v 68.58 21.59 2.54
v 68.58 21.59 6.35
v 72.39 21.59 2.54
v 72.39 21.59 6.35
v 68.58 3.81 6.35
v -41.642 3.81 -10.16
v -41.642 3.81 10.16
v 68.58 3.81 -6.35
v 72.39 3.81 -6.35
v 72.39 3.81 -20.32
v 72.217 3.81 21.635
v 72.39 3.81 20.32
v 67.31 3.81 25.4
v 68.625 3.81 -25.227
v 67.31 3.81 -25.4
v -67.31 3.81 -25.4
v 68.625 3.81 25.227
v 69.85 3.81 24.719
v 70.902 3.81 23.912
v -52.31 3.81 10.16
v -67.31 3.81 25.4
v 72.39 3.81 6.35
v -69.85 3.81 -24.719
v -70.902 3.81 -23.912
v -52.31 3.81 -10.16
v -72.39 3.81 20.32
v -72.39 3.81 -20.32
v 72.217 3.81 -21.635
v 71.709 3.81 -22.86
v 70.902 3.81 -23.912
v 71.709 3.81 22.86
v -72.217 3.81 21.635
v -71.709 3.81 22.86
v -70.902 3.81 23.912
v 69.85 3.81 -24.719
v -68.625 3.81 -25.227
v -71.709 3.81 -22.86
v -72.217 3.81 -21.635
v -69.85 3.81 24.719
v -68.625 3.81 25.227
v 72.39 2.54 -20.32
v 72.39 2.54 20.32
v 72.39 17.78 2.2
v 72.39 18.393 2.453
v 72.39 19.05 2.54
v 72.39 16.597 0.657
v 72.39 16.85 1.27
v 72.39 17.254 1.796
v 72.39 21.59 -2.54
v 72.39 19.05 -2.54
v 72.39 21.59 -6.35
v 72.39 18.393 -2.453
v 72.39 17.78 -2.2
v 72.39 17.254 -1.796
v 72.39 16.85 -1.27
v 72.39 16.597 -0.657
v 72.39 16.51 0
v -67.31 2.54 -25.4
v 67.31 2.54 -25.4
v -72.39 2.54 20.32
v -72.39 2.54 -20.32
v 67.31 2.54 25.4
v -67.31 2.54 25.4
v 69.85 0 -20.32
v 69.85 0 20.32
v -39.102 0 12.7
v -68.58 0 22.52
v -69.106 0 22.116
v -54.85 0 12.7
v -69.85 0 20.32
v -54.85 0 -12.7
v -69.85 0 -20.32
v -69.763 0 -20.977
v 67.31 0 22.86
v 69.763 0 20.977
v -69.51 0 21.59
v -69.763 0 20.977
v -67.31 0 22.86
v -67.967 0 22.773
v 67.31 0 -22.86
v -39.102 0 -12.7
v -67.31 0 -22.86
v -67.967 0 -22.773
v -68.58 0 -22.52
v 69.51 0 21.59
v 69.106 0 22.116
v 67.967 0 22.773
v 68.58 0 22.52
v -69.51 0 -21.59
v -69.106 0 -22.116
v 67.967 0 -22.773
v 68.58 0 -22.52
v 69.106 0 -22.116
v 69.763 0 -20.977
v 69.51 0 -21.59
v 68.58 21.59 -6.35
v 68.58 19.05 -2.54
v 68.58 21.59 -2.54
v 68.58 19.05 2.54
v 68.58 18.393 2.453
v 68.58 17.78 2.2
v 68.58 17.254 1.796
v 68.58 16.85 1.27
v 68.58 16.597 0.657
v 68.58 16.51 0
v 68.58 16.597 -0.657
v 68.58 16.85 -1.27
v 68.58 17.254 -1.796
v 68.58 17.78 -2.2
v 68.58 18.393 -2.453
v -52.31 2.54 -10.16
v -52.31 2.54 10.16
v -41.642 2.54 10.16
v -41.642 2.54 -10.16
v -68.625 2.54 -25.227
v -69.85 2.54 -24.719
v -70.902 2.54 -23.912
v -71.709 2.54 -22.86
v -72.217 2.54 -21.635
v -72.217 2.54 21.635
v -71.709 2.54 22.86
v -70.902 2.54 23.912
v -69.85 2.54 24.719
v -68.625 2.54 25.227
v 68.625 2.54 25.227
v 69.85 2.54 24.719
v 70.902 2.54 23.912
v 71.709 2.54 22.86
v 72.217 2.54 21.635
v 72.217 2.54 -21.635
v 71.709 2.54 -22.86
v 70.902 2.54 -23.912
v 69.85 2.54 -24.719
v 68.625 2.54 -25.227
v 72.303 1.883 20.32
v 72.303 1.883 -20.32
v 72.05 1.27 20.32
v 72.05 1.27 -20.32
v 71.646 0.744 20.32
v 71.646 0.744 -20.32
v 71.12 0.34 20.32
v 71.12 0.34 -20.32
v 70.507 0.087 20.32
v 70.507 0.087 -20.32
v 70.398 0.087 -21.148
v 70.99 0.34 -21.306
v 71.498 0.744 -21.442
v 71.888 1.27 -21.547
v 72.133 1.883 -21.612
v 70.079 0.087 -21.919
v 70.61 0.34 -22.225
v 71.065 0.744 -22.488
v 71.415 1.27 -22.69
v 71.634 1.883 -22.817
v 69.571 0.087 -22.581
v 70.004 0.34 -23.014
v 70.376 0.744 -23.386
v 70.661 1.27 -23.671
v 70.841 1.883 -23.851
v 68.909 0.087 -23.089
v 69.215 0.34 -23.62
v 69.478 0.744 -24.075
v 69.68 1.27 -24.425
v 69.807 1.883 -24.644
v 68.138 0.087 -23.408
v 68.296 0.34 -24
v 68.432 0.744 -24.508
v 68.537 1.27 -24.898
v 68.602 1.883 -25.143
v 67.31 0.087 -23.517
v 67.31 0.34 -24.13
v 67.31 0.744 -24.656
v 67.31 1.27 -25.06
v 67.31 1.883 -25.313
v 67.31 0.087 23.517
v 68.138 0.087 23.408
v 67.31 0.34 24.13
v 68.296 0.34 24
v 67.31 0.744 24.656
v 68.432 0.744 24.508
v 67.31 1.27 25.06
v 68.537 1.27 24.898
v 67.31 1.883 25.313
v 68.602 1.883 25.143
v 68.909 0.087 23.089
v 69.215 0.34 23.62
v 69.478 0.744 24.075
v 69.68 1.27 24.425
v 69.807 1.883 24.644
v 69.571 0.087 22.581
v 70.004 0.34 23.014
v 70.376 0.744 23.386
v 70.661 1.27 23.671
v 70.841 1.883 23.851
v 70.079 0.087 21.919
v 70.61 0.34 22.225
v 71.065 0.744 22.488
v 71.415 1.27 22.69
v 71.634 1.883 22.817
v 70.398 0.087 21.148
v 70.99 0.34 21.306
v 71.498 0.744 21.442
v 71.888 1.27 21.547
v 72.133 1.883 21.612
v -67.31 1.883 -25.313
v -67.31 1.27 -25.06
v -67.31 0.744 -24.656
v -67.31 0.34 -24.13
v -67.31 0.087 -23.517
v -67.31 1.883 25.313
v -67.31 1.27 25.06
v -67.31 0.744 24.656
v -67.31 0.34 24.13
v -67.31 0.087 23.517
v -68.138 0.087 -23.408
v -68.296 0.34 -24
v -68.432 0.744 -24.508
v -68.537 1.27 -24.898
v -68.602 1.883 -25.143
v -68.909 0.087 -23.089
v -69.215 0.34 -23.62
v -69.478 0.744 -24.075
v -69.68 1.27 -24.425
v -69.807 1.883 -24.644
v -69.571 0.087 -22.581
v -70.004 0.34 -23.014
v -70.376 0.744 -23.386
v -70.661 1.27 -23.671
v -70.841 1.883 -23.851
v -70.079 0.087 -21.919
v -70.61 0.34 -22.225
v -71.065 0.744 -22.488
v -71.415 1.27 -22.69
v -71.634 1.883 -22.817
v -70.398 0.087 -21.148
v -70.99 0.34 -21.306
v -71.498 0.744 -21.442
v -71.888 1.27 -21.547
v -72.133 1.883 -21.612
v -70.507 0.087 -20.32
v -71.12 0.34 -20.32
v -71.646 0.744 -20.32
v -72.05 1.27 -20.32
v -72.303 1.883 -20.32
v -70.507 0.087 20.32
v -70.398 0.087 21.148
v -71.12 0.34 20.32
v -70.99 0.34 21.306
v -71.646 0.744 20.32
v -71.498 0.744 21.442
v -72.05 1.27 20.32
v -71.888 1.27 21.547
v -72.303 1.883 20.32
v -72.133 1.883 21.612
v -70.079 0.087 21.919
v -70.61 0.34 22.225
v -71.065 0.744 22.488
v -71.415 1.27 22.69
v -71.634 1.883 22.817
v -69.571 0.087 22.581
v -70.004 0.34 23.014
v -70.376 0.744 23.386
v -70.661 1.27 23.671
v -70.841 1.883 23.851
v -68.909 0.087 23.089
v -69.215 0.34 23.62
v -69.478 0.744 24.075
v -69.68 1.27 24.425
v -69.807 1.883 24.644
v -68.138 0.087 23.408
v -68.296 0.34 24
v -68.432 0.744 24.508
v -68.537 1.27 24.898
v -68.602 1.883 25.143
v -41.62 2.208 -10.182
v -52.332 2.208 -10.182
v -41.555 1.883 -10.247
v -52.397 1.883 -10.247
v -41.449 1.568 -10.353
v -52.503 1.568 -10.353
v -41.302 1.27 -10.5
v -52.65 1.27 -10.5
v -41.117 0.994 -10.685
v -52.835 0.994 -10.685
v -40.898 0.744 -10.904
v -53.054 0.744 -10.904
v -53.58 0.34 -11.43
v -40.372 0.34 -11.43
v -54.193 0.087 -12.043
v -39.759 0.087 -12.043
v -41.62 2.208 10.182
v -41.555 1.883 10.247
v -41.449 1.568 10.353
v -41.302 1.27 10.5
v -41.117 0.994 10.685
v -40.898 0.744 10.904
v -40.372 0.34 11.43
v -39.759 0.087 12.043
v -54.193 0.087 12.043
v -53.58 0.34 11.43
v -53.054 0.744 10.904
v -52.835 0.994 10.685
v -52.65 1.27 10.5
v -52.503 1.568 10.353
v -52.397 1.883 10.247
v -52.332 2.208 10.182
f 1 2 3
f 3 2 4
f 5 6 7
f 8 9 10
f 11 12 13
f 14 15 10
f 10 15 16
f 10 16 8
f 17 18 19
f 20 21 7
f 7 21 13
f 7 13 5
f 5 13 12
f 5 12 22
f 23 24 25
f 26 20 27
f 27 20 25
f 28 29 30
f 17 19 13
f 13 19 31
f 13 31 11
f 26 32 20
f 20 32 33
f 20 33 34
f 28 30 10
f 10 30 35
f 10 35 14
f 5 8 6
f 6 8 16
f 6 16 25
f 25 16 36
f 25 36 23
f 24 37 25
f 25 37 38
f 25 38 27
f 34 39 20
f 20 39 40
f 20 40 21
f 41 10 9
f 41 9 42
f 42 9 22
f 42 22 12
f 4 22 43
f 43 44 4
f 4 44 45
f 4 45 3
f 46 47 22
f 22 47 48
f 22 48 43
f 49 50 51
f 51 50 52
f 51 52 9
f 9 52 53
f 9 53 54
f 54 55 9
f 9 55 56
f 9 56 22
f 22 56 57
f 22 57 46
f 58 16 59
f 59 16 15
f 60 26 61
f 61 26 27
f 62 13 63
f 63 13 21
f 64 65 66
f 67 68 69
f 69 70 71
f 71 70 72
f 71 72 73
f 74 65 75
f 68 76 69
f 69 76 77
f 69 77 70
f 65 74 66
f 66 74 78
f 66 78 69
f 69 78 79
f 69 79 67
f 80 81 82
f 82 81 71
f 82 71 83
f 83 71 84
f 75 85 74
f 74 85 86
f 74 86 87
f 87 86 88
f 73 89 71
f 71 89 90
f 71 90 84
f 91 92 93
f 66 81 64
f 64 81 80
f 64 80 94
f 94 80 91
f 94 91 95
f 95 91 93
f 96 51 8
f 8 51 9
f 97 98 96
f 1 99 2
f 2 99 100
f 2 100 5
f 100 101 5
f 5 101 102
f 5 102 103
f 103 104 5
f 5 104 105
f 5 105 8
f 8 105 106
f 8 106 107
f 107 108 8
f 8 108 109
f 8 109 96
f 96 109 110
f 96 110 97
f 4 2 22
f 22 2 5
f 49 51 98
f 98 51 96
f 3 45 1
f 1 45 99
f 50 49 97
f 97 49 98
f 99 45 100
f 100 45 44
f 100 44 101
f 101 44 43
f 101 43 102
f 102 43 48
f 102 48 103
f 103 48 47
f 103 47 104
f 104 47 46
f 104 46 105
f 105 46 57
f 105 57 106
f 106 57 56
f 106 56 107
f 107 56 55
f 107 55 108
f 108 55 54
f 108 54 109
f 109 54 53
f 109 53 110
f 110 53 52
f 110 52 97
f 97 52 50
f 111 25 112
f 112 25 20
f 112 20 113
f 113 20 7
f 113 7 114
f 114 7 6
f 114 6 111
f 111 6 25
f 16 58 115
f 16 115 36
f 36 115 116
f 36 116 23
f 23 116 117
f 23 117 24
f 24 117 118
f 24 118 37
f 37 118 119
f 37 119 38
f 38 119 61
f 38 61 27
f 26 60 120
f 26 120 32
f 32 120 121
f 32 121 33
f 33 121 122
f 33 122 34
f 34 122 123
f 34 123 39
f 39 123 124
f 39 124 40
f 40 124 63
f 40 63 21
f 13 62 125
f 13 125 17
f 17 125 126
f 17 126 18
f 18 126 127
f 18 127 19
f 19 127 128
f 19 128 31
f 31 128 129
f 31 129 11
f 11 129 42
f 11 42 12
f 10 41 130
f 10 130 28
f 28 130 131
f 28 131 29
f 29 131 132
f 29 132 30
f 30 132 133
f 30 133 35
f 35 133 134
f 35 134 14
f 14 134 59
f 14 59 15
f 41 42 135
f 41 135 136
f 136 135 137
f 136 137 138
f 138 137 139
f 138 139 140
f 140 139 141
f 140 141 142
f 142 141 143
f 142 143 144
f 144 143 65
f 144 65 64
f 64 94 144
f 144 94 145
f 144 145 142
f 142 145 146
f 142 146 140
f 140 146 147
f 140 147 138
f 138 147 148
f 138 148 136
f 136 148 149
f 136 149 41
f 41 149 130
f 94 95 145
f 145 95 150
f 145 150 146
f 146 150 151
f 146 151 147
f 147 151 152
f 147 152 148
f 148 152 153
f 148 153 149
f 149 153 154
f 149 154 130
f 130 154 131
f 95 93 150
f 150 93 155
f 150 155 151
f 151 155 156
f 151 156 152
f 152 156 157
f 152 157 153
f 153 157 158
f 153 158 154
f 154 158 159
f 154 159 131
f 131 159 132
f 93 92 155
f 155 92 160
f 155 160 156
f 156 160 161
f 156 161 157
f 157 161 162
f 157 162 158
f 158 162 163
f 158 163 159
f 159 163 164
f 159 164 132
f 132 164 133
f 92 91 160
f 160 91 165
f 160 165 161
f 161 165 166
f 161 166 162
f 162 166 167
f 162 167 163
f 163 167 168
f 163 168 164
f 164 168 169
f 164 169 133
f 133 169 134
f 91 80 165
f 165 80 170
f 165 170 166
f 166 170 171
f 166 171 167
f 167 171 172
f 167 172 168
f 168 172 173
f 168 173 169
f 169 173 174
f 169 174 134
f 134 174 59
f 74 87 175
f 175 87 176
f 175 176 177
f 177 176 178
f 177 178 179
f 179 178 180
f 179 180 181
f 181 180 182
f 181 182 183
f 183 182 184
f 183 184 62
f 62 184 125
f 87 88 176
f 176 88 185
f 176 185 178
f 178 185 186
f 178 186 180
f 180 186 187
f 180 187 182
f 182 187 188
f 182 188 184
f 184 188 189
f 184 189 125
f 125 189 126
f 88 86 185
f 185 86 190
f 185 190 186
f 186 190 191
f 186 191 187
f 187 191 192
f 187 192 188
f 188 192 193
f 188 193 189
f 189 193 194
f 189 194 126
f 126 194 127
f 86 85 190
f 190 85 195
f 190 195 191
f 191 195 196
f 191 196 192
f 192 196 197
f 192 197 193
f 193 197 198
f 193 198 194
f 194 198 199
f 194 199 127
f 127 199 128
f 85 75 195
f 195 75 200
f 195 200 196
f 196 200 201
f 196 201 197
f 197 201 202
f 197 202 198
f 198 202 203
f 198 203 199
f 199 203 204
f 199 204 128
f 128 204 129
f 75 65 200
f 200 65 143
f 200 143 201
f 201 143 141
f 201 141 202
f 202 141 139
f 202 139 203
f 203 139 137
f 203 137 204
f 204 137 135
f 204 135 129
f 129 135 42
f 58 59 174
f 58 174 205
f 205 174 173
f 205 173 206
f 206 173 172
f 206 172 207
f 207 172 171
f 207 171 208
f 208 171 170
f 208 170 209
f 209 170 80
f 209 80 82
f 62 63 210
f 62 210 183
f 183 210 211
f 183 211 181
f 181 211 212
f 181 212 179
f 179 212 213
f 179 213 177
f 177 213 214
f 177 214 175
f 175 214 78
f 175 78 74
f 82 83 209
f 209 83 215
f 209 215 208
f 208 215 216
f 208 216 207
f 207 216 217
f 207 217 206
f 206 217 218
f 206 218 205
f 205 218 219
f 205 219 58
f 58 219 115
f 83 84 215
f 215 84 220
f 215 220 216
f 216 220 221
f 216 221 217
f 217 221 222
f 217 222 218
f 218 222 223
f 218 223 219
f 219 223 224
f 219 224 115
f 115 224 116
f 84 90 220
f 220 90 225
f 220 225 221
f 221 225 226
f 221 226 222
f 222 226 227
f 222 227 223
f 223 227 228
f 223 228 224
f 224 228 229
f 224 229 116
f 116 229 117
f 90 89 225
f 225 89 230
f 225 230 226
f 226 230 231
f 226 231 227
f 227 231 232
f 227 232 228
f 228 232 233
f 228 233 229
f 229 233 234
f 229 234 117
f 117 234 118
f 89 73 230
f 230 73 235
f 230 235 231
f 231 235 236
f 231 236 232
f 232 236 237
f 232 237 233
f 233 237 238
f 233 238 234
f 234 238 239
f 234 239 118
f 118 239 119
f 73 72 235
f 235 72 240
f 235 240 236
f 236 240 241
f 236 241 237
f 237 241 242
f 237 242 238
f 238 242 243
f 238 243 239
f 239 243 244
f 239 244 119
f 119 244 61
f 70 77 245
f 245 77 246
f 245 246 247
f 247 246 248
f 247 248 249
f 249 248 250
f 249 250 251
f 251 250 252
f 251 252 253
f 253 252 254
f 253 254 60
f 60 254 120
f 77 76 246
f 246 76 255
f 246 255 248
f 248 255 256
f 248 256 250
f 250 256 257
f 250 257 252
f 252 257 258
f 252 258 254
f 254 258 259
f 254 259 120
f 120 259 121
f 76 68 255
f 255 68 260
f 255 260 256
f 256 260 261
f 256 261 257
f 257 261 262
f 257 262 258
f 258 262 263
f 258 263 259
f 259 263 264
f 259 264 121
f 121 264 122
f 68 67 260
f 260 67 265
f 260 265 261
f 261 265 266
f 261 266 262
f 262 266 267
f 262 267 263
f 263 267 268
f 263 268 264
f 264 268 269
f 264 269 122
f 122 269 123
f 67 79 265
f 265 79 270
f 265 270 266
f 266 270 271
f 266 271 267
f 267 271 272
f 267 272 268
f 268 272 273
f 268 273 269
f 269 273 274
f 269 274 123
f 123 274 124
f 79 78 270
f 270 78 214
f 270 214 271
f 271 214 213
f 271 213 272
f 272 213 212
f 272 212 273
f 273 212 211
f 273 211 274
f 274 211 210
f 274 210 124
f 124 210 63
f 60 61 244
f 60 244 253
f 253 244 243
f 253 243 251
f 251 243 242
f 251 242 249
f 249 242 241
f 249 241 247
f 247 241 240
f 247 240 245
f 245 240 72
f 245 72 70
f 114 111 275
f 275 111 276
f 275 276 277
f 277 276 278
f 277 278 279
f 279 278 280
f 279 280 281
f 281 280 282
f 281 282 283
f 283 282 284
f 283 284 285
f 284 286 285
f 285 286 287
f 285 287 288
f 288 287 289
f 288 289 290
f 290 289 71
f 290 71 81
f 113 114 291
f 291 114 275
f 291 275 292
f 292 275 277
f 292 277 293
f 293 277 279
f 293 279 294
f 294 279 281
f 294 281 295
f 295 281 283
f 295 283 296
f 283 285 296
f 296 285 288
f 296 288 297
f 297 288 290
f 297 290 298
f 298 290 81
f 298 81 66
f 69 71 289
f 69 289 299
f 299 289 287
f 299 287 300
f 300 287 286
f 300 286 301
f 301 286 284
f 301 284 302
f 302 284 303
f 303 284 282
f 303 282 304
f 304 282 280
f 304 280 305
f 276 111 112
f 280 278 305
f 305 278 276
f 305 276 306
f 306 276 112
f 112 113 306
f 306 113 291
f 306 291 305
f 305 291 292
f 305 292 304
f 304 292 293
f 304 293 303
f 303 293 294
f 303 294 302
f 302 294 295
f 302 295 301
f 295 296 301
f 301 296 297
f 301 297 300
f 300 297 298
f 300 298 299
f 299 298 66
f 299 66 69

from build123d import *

# Parameters (mm, degrees)
SKETCH1_W           = 144.78
SKETCH1_H           = 50.8
BOSS_EXTRUDE1_DEPTH = 3.81
SKETCH2_W           = 3.81
SKETCH2_H           = 12.7
BOSS_EXTRUDE2_DEPTH = 17.78
CUT_EXTRUDE1_REACH  = 146.78
SKETCH4_W           = 10.668
SKETCH4_H           = 20.32
CUT_EXTRUDE2_DEPTH  = 22.59
FILLET3_R           = 5.08
FILLET4_R           = 2.54


with BuildPart() as part:
    # Sketch1 → Boss-Extrude1 (new body)
    with BuildSketch(Plane(origin=(0, 0, 0), x_dir=(1, 0, 0), z_dir=(0, 1, 0))):
        Rectangle(SKETCH1_W, SKETCH1_H)
    extrude(amount=BOSS_EXTRUDE1_DEPTH)

    # Sketch2 → Boss-Extrude2 (add)
    with BuildSketch(Plane(origin=(0, 3.81, 0), x_dir=(1, 0, 0), z_dir=(0, 1, 0))):
        with Locations((70.485, 0)):
            Rectangle(SKETCH2_W, SKETCH2_H)
    extrude(amount=BOSS_EXTRUDE2_DEPTH)

    # Sketch3 → Cut-Extrude1 (cut, up to next)
    with BuildSketch(Plane(origin=(72.39, 0, 0), x_dir=(0, 0, -1), z_dir=(1, 0, 0)), mode=Mode.PRIVATE) as cut_extrude1_sk1:
        with BuildLine():
            Line((-2.54, 21.59), (2.54, 21.59))
            Line((2.54, 21.59), (2.54, 19.05))
            ThreePointArc((2.54, 19.05), (0, 16.51), (-2.54, 19.05))
            Line((-2.54, 19.05), (-2.54, 21.59))
        make_face()
    cut_extrude1_tool1 = extrude(cut_extrude1_sk1.sketch, amount=-CUT_EXTRUDE1_REACH, mode=Mode.PRIVATE) & part.part
    add(cut_extrude1_tool1.solids().sort_by_distance((72.39, 19.287109, 0))[0], mode=Mode.SUBTRACT)

    # Sketch4 → Cut-Extrude2 (cut, through all)
    with BuildSketch(Plane.XZ):
        with Locations((-46.976, 0)):
            Rectangle(SKETCH4_W, SKETCH4_H)
    extrude(amount=-CUT_EXTRUDE2_DEPTH, mode=Mode.SUBTRACT)

    # Fillet3
    fillet3_edges = [part.edges().sort_by_distance(p)[0] for p in [
        (72.39, 1.905, 25.4),
        (-72.39, 1.905, 25.4),
        (-72.39, 1.905, -25.4),
        (72.39, 1.905, -25.4),
    ]]
    fillet(fillet3_edges, radius=FILLET3_R)

    # Fillet4
    fillet4_edges = [part.edges().sort_by_distance(p)[0] for p in [
        (-52.31, 0, 0),
        (-46.976, 0, -10.16),
        (-41.642, 0, 0),
        (-46.976, 0, 10.16),
        (-72.39, 0, 0),
        (72.39, 0, 0),
        (0, 0, 25.4),
        (0, 0, -25.4),
        (70.902102448, 0, -23.912102448),
        (70.902102448, 0, 23.912102448),
        (-70.902102448, 0, 23.912102448),
        (-70.902102448, 0, -23.912102448),
    ]]
    fillet(fillet4_edges, radius=FILLET4_R)


solid = part.part
